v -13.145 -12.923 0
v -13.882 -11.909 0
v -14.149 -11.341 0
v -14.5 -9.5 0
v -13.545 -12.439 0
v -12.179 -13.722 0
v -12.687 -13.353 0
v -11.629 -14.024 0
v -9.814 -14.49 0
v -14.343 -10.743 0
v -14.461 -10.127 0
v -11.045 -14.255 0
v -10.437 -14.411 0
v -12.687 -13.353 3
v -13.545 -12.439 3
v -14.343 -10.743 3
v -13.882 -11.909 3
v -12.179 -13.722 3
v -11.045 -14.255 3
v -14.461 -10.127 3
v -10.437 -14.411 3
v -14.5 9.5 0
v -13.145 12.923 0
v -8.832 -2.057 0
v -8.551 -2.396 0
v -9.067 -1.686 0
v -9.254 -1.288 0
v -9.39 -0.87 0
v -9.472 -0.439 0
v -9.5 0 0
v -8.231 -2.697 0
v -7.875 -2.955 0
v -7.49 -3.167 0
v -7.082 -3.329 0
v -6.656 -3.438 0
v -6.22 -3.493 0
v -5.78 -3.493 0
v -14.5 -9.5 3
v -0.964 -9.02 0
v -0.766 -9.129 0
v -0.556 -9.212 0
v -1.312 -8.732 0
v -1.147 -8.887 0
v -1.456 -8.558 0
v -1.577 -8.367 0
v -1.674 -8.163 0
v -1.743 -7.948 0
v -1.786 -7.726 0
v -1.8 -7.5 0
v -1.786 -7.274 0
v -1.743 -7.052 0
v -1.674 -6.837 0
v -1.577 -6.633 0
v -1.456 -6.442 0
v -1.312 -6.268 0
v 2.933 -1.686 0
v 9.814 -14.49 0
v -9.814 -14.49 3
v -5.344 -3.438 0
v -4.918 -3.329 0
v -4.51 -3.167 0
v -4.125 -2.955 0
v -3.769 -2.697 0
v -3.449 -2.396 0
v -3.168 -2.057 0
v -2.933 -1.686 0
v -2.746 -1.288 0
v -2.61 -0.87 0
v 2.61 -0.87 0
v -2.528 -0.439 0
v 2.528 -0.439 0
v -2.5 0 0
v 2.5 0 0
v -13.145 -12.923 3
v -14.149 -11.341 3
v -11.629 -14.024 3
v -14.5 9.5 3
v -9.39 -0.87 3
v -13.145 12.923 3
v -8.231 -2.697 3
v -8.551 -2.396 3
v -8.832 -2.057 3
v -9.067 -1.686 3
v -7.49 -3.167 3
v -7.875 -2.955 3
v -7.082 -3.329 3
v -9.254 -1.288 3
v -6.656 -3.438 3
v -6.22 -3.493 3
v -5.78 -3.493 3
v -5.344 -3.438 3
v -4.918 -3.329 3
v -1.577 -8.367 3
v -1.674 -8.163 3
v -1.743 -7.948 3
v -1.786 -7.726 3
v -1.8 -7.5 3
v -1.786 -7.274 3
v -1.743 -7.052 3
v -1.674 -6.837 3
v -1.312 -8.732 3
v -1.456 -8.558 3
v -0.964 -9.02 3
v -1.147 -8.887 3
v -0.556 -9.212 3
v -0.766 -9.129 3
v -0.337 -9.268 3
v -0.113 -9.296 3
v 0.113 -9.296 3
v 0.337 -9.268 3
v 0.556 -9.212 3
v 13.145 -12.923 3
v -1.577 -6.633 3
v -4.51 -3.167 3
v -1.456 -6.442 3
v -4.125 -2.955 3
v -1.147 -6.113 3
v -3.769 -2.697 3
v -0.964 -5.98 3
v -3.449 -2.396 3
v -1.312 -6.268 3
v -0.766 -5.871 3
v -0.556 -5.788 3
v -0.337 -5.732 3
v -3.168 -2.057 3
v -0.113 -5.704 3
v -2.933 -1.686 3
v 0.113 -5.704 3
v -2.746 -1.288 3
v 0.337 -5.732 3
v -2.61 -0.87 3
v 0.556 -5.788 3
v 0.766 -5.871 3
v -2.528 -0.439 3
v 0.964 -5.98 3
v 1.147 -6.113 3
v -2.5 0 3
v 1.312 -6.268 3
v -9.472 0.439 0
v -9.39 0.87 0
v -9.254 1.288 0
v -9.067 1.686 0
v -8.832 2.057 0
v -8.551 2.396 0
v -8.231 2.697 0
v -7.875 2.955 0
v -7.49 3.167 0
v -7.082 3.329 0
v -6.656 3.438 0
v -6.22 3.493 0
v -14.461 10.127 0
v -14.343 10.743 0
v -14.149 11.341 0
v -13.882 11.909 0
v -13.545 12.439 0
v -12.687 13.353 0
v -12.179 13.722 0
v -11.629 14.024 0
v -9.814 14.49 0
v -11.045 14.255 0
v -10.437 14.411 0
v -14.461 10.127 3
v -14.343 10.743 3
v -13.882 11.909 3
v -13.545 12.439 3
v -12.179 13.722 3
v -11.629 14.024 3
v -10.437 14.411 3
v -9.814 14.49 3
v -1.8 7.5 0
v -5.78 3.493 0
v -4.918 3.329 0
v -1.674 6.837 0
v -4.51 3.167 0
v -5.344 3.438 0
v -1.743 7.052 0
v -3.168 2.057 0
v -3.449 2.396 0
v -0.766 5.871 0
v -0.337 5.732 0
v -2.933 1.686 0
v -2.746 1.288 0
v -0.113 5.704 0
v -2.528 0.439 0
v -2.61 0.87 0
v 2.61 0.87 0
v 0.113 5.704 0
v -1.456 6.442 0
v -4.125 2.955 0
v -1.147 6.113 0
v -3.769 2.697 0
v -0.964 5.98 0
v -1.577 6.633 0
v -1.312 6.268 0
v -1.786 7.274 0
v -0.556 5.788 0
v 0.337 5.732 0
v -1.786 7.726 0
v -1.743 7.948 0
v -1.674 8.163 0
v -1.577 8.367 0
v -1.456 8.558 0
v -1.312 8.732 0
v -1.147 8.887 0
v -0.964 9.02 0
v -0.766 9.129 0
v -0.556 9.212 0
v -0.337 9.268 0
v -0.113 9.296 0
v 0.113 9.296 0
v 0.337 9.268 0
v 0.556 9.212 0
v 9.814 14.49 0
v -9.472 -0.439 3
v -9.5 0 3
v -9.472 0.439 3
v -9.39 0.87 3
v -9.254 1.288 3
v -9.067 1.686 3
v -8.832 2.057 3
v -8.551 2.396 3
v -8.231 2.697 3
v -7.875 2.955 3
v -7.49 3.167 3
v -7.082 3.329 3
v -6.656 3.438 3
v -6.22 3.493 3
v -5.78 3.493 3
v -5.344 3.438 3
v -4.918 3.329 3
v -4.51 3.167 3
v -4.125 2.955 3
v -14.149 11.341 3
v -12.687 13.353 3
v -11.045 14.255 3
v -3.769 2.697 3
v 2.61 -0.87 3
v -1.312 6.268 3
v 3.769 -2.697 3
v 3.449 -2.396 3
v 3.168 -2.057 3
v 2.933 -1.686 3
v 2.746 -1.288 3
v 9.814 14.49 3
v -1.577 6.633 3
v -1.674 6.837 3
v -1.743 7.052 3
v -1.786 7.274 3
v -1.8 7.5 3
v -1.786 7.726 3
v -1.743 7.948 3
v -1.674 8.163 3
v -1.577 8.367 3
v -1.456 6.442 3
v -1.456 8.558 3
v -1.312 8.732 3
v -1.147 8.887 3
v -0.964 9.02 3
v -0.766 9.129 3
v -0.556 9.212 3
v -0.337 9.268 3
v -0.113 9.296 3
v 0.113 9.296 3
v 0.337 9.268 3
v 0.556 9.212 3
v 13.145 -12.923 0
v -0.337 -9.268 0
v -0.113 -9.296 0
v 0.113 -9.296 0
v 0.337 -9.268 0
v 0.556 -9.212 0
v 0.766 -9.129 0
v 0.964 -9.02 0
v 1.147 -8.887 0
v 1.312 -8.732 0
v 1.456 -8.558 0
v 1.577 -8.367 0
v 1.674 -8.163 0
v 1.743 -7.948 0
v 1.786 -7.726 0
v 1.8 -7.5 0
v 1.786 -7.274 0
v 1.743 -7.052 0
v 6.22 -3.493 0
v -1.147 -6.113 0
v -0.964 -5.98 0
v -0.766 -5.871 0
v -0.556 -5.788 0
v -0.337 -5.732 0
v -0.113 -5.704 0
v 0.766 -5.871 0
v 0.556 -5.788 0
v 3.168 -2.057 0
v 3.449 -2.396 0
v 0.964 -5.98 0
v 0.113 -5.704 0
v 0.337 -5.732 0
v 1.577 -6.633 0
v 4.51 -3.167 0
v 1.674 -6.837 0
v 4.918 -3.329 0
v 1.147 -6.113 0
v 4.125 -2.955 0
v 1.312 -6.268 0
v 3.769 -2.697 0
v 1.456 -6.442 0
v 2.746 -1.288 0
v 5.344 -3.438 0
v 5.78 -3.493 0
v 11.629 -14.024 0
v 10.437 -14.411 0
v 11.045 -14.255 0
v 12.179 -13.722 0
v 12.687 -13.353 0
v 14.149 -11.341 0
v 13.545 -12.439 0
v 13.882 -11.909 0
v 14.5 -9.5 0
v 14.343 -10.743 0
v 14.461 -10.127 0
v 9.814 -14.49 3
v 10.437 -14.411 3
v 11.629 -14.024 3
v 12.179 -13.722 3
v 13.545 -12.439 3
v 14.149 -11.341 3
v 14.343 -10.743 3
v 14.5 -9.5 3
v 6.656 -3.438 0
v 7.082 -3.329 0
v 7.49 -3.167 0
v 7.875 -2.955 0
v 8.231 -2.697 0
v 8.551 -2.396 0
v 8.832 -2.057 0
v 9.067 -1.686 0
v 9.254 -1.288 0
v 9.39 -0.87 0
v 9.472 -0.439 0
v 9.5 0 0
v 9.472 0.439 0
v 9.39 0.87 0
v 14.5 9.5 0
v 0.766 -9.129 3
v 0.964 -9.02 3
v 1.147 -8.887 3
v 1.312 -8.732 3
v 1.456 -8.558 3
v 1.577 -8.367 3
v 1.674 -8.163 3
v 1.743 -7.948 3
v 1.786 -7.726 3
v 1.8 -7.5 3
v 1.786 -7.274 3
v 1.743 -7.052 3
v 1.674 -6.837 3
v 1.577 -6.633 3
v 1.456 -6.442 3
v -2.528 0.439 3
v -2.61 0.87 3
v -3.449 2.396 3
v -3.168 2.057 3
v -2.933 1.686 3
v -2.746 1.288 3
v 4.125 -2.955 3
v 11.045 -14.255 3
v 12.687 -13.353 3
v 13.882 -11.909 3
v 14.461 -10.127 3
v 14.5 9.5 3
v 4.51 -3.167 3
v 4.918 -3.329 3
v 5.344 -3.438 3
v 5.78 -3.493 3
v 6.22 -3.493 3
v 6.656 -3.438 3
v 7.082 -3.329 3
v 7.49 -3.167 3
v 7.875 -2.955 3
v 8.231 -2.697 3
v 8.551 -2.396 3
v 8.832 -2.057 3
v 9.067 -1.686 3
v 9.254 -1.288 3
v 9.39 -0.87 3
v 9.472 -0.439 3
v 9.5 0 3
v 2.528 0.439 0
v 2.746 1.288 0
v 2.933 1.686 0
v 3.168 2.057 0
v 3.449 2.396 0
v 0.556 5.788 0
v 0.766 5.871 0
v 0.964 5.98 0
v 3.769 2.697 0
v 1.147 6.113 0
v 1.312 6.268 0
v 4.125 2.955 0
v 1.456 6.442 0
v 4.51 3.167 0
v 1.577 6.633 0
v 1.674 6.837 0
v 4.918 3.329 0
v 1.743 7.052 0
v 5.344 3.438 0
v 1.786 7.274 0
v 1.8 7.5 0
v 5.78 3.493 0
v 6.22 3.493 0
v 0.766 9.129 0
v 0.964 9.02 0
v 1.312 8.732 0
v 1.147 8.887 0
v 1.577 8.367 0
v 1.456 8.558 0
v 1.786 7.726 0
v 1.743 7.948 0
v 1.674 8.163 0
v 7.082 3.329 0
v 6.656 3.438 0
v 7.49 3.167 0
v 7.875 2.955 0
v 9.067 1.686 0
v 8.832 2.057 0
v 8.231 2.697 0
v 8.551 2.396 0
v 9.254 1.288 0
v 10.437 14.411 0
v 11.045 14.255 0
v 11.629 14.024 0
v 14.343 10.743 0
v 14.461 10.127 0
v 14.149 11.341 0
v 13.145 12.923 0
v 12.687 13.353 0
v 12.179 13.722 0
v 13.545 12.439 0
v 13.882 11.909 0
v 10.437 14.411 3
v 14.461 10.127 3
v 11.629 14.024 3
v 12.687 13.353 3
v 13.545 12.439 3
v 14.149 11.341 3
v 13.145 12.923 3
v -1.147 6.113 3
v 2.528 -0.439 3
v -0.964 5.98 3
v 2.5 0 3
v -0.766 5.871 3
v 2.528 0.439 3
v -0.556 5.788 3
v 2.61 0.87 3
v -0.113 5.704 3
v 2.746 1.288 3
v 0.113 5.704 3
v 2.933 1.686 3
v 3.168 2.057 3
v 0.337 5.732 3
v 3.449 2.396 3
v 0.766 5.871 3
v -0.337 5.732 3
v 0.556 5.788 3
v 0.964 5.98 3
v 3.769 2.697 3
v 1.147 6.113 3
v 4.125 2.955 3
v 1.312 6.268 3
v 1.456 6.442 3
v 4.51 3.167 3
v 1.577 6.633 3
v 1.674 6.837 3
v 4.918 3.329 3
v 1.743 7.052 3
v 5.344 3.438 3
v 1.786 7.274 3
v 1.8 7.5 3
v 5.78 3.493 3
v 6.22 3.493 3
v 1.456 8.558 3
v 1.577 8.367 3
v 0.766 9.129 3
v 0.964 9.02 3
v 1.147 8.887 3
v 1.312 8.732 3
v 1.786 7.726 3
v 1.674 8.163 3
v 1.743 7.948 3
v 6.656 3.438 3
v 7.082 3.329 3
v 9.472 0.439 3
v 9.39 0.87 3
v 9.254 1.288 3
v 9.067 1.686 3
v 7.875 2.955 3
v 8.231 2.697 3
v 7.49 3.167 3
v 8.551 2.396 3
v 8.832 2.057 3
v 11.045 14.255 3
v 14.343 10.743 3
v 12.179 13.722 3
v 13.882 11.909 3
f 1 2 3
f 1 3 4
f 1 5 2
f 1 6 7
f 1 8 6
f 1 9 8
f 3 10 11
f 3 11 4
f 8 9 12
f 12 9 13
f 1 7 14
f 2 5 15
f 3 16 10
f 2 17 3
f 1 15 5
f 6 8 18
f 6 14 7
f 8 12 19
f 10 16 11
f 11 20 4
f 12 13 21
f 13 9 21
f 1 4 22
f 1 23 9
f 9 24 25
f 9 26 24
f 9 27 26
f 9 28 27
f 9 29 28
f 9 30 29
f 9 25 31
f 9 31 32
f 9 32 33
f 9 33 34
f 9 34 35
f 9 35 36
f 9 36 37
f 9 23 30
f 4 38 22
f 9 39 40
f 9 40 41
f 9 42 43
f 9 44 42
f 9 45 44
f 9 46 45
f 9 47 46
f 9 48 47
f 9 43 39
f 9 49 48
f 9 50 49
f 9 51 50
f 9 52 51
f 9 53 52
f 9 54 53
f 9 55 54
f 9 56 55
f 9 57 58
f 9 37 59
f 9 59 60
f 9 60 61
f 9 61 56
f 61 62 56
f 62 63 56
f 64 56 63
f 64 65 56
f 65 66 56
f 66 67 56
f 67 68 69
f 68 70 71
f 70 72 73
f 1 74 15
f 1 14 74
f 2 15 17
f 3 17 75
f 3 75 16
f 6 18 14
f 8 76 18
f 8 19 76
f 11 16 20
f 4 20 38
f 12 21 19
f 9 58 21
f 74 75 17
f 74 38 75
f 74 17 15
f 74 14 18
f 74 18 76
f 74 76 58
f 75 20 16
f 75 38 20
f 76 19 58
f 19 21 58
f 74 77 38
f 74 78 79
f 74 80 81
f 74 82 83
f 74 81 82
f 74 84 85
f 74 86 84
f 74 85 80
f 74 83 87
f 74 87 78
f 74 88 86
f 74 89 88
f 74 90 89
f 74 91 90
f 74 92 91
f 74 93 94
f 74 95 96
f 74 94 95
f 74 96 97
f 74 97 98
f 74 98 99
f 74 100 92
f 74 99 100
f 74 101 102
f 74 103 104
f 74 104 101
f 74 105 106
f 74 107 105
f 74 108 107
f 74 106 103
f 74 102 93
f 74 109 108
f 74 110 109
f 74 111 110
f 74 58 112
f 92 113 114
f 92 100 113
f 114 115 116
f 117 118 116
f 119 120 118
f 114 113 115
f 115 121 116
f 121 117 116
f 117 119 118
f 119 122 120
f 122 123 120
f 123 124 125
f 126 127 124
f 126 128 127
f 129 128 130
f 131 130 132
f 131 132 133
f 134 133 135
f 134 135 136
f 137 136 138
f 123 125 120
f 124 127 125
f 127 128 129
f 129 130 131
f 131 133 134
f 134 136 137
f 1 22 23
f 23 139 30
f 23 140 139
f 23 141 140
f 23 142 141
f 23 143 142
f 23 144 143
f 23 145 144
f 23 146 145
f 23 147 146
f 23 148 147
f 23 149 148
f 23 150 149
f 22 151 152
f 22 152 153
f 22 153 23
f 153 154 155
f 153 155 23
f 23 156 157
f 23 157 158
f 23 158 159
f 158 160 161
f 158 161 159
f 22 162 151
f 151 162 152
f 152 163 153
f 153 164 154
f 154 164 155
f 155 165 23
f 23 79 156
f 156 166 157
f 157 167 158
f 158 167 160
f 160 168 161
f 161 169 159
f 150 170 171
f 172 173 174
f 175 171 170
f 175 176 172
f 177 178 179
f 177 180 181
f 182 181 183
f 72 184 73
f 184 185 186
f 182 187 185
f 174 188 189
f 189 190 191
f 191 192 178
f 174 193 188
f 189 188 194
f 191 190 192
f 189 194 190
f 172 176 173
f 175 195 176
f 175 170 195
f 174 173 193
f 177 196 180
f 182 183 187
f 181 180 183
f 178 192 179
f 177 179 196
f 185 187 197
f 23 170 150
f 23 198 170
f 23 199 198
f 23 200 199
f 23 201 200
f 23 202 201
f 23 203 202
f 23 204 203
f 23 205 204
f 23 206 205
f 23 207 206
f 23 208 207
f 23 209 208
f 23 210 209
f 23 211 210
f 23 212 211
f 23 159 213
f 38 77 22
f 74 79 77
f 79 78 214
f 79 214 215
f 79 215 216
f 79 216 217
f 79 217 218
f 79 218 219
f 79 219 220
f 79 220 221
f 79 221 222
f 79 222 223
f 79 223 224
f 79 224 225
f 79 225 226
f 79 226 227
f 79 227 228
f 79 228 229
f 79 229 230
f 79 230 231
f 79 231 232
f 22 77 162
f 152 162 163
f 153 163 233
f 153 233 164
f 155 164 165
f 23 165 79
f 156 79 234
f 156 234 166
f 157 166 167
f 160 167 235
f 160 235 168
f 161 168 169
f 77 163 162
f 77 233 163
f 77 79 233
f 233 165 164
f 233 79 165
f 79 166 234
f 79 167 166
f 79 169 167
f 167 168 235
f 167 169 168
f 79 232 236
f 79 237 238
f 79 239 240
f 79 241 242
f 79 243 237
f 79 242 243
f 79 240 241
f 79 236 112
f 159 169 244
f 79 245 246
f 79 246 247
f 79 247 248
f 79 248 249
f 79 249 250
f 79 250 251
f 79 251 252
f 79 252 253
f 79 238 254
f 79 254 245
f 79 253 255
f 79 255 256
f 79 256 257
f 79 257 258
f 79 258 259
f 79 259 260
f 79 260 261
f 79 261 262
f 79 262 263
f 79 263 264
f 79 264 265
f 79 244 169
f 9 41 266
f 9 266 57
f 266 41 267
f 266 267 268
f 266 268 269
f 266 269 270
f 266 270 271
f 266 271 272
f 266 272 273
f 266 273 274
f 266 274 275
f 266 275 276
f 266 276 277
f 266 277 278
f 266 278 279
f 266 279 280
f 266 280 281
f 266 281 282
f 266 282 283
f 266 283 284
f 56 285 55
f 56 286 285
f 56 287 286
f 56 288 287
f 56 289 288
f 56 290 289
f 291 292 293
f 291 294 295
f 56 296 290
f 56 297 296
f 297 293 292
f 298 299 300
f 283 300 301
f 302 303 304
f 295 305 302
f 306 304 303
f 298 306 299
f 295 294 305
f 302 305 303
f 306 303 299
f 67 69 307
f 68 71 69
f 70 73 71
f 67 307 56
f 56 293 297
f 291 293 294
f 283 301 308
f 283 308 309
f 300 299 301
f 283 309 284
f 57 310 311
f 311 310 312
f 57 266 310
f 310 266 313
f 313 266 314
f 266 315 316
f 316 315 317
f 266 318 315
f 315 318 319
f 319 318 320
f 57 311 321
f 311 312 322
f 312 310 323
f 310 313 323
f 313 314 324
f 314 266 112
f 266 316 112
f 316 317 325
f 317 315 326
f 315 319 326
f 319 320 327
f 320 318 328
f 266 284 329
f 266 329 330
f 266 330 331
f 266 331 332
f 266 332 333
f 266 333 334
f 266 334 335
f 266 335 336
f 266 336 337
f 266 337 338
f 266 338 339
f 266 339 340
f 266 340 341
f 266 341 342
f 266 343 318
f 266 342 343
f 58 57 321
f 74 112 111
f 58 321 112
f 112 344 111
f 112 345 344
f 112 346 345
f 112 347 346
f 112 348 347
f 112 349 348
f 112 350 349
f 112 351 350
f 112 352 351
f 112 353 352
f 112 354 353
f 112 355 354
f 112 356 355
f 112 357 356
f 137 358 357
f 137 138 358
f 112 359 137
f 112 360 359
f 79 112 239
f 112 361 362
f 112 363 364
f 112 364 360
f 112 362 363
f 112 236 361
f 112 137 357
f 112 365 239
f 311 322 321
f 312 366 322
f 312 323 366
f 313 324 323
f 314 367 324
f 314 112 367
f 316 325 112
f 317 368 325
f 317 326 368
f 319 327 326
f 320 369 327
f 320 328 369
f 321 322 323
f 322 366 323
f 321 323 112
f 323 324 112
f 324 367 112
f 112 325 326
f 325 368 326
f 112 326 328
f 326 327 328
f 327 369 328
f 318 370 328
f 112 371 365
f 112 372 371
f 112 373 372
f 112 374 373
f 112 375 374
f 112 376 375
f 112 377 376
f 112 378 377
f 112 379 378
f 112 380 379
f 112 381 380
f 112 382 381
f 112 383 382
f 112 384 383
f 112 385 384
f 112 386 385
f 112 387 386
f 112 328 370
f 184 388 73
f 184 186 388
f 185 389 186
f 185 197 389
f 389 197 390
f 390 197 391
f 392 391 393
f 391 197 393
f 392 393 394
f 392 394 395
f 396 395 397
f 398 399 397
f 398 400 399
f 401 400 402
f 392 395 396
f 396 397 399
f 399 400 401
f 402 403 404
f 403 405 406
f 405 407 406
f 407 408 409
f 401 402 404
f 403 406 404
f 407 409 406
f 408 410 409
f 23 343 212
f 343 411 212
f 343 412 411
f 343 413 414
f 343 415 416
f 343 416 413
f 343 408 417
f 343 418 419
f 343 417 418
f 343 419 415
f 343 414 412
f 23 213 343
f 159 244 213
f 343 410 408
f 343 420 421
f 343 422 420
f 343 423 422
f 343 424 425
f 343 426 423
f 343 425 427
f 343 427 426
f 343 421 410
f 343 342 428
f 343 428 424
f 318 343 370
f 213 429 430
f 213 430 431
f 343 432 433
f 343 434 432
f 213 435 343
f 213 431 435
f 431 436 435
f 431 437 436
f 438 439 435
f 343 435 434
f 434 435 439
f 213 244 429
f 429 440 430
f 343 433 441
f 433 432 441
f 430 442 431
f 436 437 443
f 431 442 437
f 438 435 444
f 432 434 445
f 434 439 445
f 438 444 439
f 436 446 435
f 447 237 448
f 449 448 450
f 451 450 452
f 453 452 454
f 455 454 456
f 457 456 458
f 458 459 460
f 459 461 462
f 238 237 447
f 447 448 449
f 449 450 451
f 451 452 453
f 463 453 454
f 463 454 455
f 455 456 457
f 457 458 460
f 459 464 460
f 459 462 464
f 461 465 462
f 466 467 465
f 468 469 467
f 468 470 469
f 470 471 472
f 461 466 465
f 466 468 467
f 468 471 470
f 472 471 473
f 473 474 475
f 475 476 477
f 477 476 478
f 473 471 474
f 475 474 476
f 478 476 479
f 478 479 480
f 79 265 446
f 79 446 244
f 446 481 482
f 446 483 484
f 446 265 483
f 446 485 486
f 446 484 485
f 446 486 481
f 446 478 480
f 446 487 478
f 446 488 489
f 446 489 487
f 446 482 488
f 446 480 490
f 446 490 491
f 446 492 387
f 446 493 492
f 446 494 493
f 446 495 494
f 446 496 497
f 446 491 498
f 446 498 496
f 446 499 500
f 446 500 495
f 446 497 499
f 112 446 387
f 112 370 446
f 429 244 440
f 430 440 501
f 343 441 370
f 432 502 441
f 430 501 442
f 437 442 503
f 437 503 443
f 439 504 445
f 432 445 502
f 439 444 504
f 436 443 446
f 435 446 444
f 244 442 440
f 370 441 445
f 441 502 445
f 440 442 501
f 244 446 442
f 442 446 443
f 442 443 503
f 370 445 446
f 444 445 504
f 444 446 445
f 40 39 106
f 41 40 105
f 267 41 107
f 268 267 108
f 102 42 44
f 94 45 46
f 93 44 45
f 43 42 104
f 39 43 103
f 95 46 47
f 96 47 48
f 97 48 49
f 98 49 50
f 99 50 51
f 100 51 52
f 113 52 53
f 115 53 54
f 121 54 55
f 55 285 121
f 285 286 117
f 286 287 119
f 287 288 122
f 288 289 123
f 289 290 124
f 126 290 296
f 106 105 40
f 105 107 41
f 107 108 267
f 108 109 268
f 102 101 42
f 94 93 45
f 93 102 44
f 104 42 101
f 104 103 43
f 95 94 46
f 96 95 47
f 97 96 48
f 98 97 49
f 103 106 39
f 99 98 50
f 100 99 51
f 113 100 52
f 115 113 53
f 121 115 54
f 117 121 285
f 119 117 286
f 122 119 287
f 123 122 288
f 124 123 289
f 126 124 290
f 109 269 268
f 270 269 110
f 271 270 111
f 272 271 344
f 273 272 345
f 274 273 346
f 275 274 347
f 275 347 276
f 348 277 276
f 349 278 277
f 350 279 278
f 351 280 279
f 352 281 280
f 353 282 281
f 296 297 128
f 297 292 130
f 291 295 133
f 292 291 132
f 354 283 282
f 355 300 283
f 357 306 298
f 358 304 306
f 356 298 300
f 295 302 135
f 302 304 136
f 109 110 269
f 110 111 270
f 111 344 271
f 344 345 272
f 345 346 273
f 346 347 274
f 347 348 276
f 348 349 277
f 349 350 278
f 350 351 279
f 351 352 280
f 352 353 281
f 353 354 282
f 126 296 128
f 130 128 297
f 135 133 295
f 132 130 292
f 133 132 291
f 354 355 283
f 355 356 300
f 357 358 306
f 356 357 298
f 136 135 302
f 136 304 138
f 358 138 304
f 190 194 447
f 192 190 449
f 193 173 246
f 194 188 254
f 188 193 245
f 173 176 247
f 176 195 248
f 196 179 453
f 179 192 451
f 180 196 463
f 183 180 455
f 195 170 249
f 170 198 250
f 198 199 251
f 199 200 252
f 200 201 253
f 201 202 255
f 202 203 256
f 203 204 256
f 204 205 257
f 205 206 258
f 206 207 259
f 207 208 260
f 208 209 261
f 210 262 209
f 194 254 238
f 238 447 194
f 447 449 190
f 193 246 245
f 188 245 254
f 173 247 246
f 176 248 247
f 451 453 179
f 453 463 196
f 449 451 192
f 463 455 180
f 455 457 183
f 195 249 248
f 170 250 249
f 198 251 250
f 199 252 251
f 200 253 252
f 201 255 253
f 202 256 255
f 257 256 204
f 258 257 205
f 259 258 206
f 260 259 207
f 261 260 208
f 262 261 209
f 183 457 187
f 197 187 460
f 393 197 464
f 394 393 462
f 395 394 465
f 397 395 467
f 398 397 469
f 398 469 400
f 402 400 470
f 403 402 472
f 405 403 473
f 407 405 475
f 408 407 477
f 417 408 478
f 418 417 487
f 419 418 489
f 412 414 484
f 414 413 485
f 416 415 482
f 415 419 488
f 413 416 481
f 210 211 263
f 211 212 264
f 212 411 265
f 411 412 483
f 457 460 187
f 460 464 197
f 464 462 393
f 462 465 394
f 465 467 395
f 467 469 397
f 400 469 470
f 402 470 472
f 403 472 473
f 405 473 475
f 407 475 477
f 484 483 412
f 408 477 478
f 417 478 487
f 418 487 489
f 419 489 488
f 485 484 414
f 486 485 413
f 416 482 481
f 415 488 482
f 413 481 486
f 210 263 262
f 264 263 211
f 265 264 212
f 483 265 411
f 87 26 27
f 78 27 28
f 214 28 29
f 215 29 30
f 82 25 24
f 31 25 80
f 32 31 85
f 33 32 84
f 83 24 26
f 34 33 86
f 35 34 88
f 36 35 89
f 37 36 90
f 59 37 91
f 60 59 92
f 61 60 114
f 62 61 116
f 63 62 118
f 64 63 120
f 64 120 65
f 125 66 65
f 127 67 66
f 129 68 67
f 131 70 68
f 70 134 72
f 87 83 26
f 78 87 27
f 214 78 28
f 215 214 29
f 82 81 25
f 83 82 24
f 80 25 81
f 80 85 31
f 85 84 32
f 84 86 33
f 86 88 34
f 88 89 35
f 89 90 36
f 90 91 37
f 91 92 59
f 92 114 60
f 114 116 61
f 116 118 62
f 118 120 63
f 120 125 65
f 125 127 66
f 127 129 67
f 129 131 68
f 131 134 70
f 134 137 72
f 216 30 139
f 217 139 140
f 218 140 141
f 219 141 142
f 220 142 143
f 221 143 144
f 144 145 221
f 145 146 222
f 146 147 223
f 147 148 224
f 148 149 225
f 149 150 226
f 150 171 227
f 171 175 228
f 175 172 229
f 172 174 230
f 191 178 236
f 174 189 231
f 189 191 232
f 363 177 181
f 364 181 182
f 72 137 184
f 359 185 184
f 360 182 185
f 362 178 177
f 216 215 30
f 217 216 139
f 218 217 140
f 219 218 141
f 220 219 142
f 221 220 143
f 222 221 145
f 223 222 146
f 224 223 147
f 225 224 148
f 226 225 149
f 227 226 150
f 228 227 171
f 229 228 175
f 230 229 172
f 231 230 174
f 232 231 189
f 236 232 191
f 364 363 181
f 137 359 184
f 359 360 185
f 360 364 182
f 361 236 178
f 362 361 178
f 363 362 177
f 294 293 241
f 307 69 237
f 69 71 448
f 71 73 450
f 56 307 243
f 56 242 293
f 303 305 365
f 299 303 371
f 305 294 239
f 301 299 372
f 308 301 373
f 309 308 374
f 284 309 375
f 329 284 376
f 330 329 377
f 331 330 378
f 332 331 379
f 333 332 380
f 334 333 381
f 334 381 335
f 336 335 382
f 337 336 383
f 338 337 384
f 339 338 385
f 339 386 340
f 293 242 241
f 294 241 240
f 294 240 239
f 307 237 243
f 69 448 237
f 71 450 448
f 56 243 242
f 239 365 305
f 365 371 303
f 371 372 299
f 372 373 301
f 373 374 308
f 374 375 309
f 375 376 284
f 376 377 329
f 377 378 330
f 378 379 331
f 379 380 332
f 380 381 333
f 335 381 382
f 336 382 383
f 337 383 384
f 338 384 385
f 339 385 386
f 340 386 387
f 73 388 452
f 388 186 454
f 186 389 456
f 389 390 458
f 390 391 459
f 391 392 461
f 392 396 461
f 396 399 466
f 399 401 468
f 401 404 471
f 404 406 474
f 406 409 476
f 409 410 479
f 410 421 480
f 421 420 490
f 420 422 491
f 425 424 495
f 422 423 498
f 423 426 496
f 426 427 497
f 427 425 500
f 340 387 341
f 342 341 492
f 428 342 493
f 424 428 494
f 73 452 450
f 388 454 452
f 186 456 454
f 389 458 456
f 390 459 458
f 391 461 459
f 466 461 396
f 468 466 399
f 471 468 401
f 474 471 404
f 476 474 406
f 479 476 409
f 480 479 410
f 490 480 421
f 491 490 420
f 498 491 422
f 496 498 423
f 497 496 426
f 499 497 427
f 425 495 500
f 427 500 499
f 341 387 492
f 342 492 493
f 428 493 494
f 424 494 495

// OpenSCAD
$fn = 50;

difference() {
	union() {
		hull() {
			translate(v = [-9.5, 9.5, 0]) {
				cylinder(h = 3, r = 5);
			}
			translate(v = [9.5, 9.5, 0]) {
				cylinder(h = 3, r = 5);
			}
			translate(v = [-9.5, -9.5, 0]) {
				cylinder(h = 3, r = 5);
			}
			translate(v = [9.5, -9.5, 0]) {
				cylinder(h = 3, r = 5);
			}
		}
	}
	union() {
		translate(v = [0.0, -7.5, 0]) {
			cylinder(h = 3, r = 1.8);
		}
		translate(v = [0.0, 7.5, 0]) {
			cylinder(h = 3, r = 1.8);
		}
		translate(v = [-6.0, 0, 0.0]) {
			cylinder(h = 3, r = 3.5);
		}
		translate(v = [6.0, 0, 0.0]) {
			cylinder(h = 3, r = 3.5);
		}
	}
}
